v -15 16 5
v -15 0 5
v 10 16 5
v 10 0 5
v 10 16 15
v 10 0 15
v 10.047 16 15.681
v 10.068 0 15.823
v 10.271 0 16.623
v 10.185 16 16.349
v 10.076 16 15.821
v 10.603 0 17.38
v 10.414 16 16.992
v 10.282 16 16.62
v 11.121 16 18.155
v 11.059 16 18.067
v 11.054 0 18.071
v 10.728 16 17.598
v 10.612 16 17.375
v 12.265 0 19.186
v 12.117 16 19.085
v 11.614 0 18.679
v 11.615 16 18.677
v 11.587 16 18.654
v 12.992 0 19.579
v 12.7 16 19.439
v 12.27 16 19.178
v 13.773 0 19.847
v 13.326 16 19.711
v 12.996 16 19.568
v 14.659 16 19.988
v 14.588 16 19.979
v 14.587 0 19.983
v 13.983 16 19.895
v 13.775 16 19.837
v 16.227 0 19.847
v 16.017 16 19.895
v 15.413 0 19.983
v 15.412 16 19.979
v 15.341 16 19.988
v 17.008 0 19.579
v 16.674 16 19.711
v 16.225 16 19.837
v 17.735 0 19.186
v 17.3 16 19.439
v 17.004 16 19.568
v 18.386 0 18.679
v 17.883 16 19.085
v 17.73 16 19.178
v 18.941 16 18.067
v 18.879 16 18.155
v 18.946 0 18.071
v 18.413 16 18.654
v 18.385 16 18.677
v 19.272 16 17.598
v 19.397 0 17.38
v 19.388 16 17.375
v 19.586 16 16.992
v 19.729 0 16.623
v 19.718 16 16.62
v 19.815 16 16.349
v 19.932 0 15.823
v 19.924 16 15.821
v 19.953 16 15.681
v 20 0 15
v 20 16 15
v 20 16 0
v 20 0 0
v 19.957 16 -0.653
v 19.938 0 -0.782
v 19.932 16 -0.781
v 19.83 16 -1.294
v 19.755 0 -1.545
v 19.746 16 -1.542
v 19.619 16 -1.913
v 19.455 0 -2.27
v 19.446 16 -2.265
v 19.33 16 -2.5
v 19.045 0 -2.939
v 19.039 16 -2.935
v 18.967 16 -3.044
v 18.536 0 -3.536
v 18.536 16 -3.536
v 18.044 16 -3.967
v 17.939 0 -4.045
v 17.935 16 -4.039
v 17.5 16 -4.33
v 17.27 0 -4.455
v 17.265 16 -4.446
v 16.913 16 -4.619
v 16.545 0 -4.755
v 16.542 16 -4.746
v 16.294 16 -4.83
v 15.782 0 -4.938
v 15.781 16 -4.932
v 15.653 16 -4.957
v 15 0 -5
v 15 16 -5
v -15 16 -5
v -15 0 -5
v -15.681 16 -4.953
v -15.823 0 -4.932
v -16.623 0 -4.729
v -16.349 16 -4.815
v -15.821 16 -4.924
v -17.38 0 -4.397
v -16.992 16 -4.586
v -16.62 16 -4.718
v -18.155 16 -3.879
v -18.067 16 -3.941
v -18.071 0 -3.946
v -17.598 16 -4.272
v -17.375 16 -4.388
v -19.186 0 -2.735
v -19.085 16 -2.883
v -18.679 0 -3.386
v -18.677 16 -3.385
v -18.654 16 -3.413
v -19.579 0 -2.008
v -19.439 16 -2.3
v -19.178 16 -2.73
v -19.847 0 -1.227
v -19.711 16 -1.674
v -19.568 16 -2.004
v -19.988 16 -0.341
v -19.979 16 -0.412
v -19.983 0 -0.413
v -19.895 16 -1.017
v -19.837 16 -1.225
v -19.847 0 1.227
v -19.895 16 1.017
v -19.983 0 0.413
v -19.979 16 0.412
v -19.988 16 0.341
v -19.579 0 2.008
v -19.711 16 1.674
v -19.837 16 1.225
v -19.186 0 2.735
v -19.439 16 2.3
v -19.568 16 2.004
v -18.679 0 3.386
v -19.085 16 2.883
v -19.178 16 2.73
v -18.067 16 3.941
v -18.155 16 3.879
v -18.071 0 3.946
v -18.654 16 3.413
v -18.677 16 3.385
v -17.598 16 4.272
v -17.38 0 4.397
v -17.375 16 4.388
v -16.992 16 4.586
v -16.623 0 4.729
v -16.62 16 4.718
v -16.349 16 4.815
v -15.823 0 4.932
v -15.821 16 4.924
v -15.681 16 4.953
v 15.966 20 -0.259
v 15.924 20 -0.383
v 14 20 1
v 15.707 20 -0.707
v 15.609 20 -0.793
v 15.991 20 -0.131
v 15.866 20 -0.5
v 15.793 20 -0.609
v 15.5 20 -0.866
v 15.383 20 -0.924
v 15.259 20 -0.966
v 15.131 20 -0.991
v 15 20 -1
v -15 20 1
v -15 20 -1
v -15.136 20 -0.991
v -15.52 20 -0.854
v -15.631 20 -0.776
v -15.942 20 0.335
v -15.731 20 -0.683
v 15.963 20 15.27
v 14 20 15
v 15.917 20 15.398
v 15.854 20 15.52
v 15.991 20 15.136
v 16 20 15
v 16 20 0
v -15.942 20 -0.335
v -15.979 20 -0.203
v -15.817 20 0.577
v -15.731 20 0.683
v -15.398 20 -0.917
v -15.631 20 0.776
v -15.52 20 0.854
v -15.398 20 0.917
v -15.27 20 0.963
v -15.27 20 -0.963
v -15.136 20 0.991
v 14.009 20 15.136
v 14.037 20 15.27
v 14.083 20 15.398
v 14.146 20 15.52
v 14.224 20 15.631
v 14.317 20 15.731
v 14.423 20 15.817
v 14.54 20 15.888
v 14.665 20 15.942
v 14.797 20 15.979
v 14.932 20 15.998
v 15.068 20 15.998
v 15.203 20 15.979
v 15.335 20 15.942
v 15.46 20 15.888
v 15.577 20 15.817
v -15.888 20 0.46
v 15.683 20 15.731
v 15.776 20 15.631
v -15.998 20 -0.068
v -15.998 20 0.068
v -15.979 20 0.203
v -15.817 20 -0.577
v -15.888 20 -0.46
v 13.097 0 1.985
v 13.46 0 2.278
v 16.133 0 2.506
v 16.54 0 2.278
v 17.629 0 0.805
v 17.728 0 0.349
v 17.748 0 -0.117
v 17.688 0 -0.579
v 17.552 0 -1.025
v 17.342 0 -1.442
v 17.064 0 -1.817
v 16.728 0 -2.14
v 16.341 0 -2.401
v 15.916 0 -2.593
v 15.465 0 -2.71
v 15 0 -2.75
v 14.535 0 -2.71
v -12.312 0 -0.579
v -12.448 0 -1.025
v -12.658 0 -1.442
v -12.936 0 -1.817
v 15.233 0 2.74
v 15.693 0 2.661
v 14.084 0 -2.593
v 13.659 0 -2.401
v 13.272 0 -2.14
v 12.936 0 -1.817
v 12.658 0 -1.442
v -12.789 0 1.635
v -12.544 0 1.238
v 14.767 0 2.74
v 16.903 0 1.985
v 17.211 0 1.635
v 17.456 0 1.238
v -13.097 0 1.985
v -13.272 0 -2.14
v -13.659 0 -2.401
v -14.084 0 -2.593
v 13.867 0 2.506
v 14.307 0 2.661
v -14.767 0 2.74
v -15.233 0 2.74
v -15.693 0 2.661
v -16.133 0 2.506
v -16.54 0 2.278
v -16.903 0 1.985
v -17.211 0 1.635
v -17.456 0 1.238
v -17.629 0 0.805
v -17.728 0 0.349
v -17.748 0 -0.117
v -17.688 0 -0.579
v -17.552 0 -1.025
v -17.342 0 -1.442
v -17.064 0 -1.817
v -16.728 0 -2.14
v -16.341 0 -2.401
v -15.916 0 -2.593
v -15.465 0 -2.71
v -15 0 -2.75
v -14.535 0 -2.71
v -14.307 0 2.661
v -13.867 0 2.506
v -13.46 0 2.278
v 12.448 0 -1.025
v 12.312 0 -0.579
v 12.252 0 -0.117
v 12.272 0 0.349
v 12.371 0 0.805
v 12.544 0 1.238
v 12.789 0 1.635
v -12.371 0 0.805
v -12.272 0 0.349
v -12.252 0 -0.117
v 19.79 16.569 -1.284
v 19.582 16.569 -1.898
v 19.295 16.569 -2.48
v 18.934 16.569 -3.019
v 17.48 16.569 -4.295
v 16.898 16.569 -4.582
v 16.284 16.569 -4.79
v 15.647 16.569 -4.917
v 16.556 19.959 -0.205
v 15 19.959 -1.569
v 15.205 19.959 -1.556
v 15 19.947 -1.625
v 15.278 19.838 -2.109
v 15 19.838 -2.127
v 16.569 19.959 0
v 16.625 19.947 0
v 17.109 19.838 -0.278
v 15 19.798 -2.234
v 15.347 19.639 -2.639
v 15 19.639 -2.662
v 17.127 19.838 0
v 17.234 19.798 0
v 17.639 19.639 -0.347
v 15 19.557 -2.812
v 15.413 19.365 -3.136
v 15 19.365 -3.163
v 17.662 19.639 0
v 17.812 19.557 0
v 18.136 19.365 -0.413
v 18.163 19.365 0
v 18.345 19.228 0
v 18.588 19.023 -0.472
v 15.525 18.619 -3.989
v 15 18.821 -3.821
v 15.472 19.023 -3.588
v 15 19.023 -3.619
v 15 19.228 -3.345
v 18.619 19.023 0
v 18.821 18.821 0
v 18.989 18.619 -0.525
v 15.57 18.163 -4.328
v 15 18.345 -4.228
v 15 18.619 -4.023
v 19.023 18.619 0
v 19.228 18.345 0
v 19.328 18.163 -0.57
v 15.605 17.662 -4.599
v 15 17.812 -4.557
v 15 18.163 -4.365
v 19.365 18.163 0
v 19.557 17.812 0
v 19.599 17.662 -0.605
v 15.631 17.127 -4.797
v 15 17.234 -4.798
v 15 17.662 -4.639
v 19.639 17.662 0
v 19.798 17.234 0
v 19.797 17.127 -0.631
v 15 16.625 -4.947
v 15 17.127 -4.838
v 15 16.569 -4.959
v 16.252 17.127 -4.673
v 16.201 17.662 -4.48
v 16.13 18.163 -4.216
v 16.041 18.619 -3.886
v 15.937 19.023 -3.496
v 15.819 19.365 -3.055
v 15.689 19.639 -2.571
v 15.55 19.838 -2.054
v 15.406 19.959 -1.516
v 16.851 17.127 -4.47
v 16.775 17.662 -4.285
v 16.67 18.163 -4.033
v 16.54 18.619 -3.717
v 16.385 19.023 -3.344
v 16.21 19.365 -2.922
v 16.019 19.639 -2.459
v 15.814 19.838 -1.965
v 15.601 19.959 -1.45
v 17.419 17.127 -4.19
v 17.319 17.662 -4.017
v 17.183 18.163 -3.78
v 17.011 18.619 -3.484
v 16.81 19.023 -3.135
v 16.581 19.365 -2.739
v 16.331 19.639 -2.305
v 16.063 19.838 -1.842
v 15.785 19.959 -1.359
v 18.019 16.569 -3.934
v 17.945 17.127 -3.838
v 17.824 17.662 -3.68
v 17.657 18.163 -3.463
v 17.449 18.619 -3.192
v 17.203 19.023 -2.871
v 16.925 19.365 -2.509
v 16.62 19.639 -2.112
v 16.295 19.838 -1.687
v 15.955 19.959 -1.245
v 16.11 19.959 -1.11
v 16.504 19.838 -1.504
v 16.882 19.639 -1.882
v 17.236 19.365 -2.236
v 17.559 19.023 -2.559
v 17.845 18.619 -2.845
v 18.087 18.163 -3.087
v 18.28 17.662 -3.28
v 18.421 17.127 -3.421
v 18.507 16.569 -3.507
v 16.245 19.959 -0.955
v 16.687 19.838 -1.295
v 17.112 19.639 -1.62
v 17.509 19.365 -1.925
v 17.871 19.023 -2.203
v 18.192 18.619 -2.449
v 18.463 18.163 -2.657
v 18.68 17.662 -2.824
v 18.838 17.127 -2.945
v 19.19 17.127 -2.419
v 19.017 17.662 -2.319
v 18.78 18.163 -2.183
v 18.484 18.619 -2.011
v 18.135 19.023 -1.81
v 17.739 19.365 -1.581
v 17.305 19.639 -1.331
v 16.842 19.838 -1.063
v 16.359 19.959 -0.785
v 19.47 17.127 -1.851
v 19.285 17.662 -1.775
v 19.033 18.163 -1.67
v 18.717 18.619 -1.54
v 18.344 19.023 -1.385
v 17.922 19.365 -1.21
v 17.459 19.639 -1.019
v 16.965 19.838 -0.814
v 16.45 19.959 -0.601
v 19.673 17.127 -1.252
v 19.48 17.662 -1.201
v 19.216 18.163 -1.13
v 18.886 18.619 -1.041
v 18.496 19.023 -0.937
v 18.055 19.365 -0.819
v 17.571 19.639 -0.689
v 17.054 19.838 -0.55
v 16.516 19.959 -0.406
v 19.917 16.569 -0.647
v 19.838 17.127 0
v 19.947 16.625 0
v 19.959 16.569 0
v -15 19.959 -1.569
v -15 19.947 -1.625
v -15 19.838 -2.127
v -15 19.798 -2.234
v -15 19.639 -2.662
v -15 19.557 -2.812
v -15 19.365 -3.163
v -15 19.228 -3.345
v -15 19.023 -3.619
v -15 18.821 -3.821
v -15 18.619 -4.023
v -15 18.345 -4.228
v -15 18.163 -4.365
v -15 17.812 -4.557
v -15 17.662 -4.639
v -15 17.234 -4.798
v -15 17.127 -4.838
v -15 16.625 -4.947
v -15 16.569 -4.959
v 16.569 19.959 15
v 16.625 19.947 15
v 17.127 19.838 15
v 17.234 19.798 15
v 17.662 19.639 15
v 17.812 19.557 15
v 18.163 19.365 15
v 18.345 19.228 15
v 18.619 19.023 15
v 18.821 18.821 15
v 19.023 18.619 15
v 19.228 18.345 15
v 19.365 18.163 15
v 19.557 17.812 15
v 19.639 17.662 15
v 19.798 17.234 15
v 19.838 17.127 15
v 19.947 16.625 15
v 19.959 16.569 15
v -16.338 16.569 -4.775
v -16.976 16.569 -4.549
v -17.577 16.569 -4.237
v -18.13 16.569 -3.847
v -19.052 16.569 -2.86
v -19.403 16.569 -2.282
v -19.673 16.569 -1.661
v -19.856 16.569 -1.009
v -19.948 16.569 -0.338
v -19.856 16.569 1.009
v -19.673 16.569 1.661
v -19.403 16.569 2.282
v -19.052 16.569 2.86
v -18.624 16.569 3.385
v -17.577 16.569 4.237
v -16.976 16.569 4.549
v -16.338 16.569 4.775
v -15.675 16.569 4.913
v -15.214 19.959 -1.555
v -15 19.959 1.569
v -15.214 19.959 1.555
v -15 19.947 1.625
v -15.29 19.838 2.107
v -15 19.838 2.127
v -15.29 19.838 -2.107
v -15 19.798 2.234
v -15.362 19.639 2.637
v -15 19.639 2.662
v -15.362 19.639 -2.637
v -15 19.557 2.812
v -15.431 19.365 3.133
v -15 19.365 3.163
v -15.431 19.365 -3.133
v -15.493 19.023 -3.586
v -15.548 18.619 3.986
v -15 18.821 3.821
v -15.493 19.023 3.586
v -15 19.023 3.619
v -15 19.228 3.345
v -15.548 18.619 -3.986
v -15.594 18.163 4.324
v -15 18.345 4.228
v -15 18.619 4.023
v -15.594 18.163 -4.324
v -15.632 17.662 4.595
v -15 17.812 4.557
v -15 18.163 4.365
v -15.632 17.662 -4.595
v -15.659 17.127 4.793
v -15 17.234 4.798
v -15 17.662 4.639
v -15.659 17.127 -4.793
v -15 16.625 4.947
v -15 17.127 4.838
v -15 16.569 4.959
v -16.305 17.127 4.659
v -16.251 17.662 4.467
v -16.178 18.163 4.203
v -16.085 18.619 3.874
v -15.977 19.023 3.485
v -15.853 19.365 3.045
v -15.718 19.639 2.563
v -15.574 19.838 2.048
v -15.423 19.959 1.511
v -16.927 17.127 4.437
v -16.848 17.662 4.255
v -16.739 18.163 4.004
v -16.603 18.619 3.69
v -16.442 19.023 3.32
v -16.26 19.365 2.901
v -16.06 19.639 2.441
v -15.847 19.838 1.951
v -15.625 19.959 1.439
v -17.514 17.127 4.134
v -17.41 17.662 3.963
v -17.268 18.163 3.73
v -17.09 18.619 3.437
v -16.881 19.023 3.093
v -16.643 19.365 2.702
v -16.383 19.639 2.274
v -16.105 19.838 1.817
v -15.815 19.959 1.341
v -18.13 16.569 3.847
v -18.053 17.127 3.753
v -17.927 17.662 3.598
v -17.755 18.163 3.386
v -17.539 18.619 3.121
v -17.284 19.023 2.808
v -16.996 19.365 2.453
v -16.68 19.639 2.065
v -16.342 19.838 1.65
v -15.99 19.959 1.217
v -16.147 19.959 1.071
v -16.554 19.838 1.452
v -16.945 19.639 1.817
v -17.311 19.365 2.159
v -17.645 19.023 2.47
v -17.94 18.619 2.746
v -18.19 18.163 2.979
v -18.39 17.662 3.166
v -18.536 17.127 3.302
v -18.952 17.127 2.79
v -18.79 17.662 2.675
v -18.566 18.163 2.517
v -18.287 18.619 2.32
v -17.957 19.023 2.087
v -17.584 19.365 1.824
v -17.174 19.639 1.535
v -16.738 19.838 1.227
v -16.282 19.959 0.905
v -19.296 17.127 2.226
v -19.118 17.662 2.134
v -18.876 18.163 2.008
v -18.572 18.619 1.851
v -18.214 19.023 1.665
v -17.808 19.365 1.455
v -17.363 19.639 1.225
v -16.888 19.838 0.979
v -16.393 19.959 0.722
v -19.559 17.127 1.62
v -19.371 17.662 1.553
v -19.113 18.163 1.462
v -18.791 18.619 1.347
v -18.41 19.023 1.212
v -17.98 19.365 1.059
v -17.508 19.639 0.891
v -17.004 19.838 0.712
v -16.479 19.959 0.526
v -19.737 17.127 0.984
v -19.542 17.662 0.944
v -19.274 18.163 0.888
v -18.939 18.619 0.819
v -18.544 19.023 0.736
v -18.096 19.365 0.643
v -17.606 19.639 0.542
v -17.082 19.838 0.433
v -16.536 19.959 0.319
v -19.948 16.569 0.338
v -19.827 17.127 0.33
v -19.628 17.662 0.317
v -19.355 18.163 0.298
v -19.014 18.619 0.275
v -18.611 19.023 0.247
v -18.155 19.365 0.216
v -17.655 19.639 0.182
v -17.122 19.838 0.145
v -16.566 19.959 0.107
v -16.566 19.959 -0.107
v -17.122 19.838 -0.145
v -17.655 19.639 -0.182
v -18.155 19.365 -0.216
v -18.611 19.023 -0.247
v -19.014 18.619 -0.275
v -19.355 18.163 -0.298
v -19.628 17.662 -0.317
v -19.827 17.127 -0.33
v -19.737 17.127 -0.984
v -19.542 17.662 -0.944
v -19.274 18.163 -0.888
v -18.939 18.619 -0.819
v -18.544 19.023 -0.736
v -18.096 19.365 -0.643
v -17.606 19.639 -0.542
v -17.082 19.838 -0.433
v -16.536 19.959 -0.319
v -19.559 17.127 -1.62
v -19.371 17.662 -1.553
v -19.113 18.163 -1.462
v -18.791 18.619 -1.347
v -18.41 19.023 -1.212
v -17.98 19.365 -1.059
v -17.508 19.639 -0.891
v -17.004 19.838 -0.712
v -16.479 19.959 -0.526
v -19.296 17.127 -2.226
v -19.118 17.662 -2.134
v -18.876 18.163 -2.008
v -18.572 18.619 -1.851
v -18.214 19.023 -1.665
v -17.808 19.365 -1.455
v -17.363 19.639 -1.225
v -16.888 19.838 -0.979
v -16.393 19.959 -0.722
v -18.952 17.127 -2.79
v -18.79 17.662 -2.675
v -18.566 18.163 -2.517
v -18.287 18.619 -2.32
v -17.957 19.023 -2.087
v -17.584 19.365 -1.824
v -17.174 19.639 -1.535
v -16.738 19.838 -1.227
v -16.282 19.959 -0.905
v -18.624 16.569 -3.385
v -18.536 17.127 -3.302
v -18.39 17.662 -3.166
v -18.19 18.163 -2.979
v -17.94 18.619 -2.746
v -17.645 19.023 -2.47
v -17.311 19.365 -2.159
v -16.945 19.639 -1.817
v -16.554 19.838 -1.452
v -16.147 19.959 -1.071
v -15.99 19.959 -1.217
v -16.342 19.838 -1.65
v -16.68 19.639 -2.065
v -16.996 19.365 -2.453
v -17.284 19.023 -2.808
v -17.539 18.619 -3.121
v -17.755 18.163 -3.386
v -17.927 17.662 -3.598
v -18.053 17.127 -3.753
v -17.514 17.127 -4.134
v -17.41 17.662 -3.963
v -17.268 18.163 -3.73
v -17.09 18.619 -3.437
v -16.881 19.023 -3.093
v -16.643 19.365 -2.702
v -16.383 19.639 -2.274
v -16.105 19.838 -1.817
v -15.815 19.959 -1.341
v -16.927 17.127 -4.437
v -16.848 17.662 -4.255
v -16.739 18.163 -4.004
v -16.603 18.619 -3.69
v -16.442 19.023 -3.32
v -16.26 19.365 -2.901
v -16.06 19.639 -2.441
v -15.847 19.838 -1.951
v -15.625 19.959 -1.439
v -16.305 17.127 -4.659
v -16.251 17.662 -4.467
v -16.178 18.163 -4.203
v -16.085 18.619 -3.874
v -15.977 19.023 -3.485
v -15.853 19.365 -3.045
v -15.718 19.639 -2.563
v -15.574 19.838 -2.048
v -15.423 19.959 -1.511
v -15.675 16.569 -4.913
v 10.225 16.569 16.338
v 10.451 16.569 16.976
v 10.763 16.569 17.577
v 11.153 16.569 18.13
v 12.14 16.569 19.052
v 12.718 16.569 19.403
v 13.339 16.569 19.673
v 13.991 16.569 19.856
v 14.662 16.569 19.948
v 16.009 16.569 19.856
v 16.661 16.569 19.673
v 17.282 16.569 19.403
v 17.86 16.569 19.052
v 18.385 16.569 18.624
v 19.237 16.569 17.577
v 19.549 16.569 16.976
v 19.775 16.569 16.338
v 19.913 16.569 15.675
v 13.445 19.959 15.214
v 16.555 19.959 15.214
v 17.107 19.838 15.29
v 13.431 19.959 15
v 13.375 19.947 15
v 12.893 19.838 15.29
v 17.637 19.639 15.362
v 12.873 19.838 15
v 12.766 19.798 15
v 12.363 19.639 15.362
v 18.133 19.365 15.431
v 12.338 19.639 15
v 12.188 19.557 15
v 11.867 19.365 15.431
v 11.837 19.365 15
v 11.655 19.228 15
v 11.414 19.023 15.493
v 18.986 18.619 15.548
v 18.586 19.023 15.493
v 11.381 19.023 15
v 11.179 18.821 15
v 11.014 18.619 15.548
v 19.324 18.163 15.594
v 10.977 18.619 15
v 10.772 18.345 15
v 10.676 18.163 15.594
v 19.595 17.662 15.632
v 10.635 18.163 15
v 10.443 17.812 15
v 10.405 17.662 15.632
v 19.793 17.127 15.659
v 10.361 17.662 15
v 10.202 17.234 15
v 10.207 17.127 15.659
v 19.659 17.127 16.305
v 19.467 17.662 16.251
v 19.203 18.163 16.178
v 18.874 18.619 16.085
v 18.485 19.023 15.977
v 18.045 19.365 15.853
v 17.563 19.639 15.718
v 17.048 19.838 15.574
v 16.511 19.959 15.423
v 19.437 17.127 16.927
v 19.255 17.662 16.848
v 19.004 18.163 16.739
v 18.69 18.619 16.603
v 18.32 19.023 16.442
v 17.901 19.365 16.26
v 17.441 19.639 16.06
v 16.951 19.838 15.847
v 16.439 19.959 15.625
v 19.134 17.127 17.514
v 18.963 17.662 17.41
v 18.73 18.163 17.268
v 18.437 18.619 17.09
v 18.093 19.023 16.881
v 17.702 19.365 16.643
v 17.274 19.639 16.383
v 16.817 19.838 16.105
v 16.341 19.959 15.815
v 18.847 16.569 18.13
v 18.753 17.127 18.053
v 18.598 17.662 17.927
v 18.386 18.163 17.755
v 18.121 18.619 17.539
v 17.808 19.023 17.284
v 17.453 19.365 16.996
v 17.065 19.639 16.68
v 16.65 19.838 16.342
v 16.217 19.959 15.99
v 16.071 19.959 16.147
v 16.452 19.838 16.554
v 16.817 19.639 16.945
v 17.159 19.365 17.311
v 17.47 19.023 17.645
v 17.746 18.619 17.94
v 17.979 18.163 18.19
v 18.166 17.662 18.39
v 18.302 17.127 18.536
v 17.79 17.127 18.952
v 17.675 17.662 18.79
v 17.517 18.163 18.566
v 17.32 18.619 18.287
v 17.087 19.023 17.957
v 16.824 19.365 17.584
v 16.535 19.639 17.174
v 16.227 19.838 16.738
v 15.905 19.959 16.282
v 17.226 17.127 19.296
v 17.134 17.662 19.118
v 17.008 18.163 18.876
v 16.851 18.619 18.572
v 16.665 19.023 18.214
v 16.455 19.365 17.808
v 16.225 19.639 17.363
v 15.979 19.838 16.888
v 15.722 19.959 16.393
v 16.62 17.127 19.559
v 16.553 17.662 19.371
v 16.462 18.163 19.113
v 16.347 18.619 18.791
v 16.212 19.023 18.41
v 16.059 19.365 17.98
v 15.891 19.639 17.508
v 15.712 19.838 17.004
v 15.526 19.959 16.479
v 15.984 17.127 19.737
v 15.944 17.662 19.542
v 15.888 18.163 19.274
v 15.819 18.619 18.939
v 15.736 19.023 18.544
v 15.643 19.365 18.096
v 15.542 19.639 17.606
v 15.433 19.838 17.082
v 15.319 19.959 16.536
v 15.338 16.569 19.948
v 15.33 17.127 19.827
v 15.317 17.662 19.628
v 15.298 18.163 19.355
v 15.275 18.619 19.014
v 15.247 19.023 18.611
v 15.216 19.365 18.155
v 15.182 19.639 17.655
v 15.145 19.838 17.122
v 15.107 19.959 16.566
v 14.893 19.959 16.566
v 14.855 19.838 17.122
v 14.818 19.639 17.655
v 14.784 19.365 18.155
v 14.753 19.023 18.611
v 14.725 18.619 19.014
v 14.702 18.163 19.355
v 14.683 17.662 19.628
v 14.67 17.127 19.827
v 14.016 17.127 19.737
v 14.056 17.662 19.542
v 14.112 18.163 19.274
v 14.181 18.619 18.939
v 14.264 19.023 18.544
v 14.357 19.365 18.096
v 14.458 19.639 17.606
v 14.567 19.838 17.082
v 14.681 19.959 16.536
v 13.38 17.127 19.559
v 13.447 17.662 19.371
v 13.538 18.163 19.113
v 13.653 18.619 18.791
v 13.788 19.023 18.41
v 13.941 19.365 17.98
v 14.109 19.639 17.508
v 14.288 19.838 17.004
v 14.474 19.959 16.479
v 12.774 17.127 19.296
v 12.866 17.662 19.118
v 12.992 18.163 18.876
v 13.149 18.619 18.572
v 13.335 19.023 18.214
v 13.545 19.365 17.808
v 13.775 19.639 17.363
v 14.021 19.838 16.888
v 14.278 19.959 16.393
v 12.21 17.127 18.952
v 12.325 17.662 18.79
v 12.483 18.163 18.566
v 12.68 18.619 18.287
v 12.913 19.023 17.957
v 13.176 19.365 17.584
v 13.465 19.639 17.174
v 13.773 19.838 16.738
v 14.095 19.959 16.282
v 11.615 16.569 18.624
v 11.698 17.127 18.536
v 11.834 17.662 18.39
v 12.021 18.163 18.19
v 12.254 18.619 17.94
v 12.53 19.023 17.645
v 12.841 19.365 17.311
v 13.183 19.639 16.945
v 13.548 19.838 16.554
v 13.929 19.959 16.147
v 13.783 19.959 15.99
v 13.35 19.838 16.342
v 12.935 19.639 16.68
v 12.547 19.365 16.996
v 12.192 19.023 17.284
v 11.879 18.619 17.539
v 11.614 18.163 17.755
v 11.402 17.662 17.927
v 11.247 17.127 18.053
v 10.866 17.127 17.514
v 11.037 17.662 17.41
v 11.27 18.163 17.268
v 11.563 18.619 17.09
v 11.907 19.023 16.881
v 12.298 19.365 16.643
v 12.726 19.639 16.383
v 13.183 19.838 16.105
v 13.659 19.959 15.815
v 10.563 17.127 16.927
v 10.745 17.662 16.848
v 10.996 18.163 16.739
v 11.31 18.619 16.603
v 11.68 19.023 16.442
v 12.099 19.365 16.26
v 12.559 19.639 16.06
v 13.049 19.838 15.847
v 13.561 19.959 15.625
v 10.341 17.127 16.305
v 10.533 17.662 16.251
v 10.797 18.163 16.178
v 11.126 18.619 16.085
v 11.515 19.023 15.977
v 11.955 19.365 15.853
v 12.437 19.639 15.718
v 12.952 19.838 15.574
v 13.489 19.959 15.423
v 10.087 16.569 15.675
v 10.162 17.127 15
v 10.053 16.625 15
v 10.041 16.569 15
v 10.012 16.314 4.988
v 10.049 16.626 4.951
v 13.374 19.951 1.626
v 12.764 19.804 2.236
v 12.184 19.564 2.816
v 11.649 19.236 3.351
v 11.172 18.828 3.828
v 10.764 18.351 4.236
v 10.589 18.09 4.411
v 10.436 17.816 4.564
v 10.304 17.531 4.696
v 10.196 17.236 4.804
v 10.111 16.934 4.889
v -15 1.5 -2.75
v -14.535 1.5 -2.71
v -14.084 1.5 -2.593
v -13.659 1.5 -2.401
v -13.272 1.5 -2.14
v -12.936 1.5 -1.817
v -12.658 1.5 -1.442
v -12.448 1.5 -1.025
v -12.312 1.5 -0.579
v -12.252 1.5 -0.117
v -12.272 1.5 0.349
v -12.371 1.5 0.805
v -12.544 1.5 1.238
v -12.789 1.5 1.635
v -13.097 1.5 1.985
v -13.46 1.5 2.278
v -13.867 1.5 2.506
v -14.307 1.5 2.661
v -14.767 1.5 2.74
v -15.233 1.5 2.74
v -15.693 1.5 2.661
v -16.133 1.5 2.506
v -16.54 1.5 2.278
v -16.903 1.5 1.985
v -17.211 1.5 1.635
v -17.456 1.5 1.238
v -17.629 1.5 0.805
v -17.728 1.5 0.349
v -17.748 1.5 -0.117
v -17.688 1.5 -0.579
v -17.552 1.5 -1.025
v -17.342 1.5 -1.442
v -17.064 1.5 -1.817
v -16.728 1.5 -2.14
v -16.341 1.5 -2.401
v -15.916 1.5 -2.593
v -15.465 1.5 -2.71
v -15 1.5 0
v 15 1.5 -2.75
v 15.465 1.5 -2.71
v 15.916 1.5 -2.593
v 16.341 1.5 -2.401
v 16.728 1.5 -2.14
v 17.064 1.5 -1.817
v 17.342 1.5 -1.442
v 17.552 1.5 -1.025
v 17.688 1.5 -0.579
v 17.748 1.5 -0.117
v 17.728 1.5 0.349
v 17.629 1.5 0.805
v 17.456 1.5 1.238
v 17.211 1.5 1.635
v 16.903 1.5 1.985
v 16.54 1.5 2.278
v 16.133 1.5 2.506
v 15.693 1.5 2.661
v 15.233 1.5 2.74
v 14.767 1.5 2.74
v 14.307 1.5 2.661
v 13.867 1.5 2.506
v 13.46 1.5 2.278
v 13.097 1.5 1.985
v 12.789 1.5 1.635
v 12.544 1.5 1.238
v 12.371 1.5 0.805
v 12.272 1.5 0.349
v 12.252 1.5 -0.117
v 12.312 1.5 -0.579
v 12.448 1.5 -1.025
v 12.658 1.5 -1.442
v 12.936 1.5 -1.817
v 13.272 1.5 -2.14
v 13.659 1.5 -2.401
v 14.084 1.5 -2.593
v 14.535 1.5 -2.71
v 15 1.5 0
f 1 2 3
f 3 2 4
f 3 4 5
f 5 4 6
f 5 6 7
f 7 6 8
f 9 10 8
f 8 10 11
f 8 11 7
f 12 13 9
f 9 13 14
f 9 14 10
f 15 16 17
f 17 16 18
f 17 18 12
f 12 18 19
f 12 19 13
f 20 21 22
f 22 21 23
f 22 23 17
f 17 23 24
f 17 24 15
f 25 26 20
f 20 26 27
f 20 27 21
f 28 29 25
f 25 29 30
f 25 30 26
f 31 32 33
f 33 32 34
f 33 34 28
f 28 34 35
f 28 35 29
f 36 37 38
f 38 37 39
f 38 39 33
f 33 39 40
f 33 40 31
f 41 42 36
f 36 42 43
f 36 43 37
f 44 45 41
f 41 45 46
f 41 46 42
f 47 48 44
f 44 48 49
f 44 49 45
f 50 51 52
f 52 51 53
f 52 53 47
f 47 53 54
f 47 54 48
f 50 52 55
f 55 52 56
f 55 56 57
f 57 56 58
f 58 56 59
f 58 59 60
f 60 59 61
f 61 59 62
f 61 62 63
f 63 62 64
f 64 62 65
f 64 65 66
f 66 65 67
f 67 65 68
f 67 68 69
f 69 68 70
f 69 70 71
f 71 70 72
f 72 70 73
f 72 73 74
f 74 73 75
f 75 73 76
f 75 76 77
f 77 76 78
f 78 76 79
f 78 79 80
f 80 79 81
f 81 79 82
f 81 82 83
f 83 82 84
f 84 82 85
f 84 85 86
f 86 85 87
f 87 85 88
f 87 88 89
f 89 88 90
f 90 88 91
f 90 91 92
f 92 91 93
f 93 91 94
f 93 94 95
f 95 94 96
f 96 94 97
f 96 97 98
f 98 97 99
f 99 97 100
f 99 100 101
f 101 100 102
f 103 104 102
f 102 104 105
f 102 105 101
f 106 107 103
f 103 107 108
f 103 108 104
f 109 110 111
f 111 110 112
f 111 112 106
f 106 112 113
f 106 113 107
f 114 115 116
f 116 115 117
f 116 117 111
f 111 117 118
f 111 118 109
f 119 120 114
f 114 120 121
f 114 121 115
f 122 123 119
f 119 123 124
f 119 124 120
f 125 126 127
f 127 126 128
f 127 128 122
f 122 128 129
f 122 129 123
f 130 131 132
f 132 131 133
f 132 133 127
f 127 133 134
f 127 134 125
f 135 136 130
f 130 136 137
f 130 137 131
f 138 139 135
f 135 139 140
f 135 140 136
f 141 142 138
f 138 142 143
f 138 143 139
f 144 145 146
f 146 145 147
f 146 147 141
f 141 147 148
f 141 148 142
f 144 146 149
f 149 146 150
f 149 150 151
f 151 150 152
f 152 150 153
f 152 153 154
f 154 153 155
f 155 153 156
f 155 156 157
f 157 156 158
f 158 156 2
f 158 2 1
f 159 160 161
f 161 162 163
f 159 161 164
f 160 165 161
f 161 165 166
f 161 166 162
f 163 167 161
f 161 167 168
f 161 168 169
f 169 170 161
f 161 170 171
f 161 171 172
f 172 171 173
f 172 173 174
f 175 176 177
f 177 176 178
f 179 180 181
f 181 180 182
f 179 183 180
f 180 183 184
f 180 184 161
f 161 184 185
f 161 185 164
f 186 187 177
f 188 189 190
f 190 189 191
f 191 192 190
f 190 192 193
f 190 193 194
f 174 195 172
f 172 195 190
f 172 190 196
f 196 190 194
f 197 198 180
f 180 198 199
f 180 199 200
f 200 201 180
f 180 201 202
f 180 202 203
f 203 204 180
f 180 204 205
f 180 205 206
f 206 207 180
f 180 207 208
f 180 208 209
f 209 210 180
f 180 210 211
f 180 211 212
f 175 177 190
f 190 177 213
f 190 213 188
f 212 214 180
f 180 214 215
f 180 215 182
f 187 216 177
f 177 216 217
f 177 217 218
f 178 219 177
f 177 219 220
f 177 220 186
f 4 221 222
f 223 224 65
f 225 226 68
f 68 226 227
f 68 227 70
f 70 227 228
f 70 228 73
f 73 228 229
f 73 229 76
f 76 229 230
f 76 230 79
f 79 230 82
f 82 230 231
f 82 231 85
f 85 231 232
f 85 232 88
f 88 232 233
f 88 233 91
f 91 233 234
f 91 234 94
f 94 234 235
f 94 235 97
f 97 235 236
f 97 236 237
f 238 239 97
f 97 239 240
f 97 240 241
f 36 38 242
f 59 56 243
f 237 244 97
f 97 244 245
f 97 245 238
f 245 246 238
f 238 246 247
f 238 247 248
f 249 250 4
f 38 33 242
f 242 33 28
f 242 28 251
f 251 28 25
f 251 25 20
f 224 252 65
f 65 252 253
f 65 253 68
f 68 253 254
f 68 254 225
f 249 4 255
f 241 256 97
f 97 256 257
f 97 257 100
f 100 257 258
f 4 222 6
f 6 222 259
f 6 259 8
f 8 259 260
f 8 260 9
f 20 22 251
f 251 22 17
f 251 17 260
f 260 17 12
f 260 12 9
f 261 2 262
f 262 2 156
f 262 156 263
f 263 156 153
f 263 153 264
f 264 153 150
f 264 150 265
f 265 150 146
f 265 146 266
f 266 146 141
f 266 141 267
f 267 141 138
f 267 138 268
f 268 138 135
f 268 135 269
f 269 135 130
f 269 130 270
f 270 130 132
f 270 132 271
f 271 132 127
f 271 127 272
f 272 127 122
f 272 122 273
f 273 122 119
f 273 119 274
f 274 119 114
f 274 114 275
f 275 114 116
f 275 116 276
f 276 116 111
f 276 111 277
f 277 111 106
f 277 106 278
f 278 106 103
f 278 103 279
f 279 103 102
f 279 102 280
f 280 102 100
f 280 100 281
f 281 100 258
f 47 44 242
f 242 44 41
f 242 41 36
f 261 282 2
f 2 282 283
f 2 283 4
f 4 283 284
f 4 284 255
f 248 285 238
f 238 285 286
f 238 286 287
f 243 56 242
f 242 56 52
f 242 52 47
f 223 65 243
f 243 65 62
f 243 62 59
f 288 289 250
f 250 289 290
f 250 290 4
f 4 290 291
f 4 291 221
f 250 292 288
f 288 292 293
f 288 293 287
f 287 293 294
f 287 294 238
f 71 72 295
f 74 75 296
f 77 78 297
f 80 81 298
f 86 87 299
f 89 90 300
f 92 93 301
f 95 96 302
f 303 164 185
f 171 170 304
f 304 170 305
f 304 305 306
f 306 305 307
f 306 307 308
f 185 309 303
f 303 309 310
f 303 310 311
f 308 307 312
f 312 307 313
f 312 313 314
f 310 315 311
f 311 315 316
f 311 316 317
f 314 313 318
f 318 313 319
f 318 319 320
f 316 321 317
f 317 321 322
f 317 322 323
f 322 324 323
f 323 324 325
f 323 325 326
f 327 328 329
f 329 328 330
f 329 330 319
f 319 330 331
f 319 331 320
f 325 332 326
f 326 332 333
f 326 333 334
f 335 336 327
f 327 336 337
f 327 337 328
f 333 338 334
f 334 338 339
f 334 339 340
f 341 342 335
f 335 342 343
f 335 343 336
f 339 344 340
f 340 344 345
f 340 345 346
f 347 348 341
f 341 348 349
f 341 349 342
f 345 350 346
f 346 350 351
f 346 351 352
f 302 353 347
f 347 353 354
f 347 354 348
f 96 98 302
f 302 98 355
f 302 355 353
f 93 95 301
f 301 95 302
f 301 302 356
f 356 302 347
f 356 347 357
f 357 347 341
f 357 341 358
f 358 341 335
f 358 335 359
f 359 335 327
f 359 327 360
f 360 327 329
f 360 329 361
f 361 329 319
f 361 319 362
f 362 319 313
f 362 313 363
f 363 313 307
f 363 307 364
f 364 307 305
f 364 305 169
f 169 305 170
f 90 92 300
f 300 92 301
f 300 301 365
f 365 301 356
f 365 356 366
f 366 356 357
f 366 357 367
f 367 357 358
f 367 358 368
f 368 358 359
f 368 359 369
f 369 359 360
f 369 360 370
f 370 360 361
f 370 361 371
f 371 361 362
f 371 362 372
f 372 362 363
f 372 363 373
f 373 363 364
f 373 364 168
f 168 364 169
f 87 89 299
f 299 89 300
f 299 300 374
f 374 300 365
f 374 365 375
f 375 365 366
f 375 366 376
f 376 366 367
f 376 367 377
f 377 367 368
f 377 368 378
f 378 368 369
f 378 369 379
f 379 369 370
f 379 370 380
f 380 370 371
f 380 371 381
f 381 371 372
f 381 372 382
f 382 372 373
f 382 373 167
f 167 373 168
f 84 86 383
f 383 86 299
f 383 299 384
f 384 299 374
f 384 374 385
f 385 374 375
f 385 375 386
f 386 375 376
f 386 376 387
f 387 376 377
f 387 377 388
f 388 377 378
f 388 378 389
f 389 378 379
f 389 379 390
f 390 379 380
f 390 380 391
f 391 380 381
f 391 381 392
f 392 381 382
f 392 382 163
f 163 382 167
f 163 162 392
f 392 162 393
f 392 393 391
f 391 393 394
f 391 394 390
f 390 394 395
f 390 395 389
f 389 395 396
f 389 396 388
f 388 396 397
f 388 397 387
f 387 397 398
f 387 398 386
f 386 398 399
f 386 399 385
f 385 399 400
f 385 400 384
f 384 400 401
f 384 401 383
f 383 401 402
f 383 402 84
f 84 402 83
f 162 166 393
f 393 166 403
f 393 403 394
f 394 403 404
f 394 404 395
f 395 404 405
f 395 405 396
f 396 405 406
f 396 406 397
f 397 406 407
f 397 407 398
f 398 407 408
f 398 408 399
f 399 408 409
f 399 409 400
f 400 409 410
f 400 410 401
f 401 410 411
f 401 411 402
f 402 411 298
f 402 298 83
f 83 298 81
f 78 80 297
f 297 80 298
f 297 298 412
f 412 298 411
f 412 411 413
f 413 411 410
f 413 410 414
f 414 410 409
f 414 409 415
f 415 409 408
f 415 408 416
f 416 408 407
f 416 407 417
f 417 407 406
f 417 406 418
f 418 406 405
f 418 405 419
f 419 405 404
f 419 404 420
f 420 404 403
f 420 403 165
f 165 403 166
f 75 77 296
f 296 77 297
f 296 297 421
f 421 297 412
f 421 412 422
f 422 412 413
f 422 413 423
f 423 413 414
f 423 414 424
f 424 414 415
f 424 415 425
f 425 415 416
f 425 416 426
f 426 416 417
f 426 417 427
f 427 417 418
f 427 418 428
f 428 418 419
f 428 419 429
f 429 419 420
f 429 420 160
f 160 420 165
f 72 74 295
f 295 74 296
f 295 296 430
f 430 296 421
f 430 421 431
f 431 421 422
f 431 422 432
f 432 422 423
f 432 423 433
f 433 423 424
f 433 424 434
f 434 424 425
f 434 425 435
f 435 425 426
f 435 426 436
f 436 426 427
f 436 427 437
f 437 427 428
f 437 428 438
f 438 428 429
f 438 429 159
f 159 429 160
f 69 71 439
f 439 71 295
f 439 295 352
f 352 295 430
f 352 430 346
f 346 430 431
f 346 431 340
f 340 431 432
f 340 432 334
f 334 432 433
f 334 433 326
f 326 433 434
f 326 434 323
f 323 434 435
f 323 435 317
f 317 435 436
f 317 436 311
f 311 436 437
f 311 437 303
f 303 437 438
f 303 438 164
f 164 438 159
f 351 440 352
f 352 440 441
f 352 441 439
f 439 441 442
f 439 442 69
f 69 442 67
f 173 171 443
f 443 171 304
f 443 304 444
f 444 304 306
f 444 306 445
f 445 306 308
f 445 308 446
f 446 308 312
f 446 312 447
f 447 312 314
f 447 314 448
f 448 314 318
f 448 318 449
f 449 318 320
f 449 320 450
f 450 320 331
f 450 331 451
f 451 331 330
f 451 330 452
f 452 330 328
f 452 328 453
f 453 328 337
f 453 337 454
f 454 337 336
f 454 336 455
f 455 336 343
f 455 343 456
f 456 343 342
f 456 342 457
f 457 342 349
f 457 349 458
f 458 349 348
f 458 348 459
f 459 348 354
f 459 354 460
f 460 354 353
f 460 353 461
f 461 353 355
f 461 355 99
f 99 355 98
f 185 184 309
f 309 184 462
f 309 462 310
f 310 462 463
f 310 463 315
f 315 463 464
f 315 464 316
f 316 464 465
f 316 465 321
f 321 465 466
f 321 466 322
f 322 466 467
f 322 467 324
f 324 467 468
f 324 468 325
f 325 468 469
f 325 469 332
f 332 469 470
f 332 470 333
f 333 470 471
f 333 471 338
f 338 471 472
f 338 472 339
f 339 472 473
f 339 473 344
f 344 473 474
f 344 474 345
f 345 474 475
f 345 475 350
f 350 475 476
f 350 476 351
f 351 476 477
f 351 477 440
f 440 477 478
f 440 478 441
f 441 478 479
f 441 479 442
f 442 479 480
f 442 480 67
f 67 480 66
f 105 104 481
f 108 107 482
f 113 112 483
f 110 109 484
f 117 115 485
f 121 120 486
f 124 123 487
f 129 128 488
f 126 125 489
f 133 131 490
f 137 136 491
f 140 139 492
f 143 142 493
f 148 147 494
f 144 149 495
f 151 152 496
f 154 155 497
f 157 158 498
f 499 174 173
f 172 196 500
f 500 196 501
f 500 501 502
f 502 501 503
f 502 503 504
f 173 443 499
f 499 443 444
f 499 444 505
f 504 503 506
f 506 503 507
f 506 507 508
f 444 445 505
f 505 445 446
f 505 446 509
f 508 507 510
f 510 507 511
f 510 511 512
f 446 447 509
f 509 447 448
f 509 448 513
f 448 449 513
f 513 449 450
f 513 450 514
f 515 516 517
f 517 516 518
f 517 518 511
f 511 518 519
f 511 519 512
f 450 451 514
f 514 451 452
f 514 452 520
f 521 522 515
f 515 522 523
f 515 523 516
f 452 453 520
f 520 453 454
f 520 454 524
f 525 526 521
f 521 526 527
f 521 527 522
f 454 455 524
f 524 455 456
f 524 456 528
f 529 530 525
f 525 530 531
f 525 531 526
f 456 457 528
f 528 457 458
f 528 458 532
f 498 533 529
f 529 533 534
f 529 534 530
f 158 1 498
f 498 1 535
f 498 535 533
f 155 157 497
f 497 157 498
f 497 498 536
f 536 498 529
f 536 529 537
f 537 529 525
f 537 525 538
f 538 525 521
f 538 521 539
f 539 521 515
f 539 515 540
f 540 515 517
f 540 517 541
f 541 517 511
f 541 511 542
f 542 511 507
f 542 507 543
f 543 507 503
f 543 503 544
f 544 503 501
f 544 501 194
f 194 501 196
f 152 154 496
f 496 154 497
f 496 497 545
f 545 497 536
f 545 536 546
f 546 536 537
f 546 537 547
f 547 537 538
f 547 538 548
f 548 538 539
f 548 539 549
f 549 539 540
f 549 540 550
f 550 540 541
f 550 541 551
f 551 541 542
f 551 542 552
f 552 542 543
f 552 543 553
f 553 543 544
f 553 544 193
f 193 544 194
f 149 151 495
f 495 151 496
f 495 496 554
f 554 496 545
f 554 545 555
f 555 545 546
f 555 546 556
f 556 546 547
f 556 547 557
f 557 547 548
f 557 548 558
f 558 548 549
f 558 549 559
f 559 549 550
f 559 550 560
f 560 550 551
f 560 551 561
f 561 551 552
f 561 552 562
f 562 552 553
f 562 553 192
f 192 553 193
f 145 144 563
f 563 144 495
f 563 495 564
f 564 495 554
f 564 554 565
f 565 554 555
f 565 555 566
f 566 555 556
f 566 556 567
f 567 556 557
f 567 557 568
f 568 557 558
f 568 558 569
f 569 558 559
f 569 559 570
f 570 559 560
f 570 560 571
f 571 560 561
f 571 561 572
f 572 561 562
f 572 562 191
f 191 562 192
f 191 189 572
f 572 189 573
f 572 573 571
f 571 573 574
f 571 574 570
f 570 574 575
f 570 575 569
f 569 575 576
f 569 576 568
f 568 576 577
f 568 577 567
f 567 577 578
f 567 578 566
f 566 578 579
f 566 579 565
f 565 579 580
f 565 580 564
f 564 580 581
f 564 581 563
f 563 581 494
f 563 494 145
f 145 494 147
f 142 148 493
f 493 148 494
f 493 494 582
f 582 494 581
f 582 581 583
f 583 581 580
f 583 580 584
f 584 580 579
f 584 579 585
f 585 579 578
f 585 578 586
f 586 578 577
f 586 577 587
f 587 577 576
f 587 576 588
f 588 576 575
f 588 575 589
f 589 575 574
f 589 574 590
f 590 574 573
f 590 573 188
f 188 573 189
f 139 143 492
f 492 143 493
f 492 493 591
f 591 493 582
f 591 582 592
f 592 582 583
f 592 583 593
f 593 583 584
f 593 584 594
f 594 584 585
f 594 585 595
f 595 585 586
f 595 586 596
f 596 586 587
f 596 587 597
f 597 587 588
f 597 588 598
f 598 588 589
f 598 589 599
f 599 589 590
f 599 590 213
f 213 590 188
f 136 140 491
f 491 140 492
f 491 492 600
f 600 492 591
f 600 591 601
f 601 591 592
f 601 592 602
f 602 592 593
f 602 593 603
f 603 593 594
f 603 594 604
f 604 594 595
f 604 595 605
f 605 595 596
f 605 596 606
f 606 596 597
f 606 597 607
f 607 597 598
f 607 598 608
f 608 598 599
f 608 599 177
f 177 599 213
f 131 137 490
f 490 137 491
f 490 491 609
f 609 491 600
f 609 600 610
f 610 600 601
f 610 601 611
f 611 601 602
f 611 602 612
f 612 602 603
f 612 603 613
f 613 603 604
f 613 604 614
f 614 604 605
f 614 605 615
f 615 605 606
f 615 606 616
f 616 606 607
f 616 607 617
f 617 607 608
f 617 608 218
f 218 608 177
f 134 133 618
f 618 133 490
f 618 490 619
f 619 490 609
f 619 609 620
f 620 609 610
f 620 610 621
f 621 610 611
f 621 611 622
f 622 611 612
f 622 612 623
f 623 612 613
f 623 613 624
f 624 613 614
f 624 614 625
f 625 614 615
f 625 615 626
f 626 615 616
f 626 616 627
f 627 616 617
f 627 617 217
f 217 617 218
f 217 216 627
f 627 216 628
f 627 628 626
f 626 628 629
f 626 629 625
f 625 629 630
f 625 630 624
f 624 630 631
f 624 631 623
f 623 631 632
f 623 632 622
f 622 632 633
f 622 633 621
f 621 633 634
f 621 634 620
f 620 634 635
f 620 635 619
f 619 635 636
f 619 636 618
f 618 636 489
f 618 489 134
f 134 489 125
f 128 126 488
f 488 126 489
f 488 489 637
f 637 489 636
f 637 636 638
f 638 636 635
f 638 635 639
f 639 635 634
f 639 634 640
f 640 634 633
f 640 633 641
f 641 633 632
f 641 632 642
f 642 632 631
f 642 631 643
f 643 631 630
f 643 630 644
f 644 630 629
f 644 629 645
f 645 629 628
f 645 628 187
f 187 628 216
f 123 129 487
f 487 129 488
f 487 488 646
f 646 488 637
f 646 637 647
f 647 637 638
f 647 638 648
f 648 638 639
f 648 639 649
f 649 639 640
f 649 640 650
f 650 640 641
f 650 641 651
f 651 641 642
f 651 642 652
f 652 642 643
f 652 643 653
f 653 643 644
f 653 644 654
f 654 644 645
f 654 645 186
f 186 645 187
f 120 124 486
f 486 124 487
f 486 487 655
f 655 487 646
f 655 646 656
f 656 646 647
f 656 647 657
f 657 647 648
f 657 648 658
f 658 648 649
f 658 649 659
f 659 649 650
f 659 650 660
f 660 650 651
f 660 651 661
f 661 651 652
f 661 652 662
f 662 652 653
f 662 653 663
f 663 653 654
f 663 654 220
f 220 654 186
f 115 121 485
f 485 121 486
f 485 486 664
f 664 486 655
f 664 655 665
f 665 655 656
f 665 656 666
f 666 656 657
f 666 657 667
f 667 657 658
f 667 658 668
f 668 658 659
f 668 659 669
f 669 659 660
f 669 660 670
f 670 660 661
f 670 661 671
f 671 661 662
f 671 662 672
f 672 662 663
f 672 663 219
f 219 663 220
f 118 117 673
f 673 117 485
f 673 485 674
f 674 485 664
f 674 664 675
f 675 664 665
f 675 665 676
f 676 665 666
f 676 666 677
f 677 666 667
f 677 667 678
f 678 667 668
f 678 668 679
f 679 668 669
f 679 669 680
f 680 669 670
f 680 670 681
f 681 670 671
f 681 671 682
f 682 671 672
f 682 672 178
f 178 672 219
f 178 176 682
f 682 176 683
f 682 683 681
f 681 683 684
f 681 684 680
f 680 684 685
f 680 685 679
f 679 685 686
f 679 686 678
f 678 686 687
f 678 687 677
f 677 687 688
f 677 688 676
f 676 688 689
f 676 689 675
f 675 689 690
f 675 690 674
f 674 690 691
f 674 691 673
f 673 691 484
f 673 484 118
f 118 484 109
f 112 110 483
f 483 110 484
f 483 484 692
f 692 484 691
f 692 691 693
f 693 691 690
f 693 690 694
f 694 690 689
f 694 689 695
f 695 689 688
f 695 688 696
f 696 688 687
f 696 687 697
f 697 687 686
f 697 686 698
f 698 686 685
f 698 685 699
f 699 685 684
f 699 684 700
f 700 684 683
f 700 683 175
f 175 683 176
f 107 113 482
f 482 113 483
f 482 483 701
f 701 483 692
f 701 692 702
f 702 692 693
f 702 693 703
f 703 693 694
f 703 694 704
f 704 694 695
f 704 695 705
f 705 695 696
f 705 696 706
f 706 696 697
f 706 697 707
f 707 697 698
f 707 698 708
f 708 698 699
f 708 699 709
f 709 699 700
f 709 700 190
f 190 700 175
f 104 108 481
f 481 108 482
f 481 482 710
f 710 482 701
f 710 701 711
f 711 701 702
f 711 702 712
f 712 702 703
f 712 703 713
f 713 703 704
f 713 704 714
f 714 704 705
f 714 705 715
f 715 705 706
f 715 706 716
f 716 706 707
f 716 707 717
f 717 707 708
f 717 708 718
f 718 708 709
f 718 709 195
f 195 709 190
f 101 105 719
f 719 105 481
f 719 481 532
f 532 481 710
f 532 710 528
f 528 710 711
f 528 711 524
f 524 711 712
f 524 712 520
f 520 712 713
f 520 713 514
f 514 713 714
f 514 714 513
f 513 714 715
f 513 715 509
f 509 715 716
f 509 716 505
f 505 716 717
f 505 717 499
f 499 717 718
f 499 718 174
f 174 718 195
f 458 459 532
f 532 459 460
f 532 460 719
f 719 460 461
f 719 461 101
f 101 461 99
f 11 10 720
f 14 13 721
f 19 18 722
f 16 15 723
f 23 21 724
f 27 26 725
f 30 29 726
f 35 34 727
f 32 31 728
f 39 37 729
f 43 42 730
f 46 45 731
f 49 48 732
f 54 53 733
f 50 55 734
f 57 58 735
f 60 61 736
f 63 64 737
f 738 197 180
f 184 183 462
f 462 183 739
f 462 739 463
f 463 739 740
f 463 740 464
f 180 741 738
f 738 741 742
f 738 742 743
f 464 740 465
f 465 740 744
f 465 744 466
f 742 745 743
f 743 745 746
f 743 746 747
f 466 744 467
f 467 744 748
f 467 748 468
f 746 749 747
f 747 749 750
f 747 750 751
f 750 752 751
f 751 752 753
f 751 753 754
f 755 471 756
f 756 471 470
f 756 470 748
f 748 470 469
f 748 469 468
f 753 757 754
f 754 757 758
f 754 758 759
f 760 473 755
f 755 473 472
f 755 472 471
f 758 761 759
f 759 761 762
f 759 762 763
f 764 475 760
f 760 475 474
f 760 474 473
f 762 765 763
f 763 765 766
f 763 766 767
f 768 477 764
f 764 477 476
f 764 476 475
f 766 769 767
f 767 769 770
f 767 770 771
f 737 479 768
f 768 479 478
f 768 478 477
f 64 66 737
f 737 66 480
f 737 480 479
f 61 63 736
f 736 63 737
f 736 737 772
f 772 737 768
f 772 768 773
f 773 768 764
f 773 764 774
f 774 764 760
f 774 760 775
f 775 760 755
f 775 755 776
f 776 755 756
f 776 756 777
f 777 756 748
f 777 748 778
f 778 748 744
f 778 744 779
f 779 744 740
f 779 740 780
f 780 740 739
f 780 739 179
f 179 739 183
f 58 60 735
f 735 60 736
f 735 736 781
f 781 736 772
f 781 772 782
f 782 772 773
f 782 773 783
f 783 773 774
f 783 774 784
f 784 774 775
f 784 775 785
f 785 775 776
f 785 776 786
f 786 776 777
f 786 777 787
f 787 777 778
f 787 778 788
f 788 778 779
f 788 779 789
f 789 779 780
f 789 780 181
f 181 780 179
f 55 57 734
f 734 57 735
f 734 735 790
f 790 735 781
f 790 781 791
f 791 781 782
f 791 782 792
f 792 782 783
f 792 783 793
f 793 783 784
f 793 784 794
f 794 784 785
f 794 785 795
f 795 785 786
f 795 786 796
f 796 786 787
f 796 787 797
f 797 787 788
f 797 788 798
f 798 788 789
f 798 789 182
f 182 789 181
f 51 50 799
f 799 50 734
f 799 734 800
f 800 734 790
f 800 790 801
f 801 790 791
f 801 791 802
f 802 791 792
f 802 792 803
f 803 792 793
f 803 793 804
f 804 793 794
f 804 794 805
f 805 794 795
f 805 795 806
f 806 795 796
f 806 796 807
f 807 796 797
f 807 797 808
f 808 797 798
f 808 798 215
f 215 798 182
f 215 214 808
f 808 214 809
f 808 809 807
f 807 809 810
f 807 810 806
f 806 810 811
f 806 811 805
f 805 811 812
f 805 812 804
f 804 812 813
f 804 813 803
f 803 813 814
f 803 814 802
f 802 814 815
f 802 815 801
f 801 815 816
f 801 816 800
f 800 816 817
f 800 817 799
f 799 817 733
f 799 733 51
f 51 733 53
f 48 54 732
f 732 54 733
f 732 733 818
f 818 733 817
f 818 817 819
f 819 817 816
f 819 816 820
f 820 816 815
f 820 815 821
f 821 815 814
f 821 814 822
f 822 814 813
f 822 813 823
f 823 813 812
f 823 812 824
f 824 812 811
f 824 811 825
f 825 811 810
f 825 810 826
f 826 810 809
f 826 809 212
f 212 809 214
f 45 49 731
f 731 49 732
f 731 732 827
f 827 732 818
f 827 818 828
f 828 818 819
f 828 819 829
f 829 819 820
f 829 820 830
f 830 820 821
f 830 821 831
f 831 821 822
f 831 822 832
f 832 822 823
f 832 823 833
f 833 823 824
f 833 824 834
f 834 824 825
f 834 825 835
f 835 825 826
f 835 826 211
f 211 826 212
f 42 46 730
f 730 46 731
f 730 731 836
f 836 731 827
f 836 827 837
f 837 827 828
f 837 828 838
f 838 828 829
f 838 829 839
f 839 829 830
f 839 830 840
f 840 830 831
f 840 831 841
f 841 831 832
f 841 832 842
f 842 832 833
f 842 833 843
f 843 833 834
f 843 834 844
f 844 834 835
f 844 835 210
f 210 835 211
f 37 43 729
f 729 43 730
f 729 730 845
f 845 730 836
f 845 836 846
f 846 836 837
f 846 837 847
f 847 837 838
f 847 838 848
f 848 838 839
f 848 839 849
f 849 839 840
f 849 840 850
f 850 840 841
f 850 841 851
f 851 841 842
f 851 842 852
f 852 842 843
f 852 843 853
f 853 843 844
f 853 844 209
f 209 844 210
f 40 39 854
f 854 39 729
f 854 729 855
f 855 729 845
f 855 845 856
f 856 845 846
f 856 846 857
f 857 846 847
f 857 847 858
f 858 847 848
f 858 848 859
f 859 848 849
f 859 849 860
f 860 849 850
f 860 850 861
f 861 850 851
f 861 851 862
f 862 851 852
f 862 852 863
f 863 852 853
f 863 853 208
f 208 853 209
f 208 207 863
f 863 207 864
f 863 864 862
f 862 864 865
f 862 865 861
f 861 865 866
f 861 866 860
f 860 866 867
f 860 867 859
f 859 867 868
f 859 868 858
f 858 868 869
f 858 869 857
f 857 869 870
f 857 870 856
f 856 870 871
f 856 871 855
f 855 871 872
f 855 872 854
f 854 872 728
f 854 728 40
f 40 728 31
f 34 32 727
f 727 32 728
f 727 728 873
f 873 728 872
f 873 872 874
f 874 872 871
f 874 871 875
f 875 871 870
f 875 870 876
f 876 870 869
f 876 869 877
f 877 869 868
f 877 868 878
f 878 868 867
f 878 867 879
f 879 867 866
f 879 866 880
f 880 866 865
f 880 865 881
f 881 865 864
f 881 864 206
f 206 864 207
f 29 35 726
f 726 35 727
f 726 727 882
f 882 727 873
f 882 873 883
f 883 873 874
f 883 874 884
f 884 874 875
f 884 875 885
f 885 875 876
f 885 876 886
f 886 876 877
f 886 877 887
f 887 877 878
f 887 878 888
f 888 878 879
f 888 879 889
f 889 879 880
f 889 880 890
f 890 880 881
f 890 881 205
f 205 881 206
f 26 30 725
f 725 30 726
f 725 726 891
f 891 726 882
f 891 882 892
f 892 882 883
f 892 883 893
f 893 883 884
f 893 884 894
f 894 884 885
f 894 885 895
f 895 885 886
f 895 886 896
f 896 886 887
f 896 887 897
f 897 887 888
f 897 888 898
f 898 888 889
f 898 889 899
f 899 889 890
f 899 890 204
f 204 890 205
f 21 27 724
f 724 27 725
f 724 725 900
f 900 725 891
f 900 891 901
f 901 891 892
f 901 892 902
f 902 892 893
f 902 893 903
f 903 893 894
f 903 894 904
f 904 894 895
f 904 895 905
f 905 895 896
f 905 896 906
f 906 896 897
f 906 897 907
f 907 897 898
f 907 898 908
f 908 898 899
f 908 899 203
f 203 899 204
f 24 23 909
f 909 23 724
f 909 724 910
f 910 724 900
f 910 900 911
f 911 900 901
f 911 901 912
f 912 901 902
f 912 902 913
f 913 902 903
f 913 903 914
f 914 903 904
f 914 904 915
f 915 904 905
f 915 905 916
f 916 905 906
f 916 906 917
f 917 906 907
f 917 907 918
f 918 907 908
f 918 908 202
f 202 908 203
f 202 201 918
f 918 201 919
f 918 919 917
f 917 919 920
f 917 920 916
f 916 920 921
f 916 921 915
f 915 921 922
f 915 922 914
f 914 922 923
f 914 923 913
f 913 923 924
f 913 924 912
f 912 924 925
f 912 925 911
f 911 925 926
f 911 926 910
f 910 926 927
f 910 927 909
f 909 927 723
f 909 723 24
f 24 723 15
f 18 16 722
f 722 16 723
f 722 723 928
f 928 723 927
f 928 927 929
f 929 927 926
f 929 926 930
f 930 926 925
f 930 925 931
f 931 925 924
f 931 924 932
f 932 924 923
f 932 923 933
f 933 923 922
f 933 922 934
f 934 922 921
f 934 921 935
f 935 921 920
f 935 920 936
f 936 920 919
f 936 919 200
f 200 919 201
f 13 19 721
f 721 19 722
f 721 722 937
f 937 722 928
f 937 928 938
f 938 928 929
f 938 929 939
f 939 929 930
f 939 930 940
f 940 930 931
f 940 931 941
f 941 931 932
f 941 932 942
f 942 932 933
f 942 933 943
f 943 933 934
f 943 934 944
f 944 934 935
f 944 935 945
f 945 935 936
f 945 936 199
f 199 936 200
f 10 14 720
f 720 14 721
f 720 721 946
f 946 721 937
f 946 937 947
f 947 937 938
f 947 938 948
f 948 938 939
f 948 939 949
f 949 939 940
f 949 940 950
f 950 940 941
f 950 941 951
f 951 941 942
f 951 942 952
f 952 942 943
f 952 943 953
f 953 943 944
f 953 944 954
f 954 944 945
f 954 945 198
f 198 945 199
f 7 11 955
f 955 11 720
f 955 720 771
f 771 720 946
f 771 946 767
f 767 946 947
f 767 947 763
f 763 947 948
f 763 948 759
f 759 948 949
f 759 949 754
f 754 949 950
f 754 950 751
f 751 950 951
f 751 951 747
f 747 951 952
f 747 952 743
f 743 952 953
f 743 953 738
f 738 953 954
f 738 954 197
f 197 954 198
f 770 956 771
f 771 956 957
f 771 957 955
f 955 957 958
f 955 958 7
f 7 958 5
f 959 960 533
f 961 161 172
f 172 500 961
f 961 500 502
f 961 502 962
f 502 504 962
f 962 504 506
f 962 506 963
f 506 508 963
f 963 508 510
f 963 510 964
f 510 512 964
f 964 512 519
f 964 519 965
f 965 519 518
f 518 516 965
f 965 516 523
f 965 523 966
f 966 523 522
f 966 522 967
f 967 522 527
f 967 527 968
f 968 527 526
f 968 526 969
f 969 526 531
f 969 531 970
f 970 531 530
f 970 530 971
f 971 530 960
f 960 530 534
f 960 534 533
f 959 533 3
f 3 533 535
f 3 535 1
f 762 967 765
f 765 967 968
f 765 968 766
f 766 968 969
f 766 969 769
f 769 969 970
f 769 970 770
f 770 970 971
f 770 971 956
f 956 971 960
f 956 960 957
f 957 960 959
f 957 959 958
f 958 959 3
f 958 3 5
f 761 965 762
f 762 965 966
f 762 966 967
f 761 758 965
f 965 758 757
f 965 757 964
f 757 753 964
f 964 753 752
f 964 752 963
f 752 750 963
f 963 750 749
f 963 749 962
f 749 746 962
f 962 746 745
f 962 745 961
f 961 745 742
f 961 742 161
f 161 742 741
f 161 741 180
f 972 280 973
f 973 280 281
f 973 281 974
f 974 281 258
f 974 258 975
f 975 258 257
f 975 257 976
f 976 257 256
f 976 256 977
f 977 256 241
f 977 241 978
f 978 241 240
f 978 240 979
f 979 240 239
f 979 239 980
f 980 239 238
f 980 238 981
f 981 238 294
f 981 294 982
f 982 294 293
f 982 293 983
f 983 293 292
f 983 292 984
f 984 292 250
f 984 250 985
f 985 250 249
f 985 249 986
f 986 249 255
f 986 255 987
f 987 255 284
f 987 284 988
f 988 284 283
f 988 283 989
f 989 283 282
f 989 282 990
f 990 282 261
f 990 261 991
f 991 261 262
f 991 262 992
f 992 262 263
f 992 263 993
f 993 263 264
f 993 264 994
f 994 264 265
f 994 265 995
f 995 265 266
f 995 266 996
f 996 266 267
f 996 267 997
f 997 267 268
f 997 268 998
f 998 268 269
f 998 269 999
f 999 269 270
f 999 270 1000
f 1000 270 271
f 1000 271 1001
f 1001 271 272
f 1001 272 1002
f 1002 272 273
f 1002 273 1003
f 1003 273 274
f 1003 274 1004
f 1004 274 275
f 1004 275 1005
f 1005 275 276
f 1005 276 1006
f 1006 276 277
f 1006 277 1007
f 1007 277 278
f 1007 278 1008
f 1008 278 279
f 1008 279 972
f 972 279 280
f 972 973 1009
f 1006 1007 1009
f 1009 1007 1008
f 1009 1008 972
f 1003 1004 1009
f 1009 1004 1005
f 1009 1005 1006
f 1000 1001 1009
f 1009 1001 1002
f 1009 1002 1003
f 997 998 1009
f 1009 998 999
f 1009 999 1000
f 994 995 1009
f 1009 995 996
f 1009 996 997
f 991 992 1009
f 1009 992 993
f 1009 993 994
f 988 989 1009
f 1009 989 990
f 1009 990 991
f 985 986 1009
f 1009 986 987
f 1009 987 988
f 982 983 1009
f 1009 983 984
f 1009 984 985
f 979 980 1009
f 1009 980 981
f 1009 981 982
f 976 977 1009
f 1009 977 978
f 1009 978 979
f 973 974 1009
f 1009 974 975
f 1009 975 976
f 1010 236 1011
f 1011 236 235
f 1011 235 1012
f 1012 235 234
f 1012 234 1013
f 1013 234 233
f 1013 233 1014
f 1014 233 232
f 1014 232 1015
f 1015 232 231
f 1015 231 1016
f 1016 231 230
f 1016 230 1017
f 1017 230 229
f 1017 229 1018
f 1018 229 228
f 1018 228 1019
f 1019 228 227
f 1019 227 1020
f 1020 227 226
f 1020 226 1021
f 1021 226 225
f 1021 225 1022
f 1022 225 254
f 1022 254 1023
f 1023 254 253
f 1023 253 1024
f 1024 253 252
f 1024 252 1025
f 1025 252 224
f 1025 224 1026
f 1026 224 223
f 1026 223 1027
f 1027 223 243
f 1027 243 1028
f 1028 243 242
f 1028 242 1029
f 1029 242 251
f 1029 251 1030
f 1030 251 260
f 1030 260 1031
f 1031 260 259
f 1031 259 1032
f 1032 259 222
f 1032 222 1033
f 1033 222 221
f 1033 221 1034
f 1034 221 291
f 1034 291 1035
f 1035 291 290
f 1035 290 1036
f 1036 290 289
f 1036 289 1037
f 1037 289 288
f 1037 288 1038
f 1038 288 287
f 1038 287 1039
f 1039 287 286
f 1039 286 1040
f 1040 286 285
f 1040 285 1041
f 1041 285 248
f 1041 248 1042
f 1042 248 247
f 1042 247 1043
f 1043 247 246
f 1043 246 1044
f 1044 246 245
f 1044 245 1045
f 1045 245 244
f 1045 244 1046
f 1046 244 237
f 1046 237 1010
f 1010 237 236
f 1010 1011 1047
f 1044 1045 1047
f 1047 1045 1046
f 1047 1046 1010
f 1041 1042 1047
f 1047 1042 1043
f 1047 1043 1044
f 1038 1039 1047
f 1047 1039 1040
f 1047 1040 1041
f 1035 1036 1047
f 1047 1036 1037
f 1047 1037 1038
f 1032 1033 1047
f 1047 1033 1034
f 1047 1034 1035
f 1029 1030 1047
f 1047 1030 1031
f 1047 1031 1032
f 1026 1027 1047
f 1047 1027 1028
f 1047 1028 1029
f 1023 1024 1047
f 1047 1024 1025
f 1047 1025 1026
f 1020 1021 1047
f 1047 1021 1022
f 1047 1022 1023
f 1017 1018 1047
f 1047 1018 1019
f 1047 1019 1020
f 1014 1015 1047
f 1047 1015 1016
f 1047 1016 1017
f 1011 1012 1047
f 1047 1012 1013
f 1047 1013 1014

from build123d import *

# Parameters (mm, degrees)
BOSS_EXTRUDE1_DEPTH = 20
FILLET1_R           = 4
SKETCH2_R           = 2.75
CUT_EXTRUDE1_DEPTH  = 1.5
LPATTERN1_COUNT     = 2
LPATTERN1_PITCH     = 30


with BuildPart() as part:
    # Sketch1 → Boss-Extrude1 (new body)
    with BuildSketch(Plane(origin=(0, 0, 0), x_dir=(1, 0, 0), z_dir=(0, 1, 0))):
        with BuildLine():
            Line((-15, -5), (10, -5))
            Line((10, -5), (10, -15))
            ThreePointArc((10, -15), (15, -20), (20, -15))
            Line((20, -15), (20, 0))
            ThreePointArc((20, 0), (18.535533906, 3.535533906), (15, 5))
            Line((15, 5), (-15, 5))
            ThreePointArc((-15, 5), (-20, 0), (-15, -5))
        make_face()
    extrude(amount=BOSS_EXTRUDE1_DEPTH)

    # Fillet1
    fillet1_edges = [part.edges().sort_by_distance(p)[0] for p in [
        (15, 20, 20),
        (20, 20, 7.5),
        (18.535533906, 20, -3.535533906),
        (0, 20, -5),
        (-20, 20, 0),
        (-2.5, 20, 5),
        (10, 20, 10),
    ]]
    fillet(fillet1_edges, radius=FILLET1_R)

    # Sketch2 → Cut-Extrude1 (cut)
    with BuildSketch(Plane.XZ):
        with Locations(Location((-15, 0, 0), (0, 0, 270))):
            Circle(SKETCH2_R)
    cut_extrude1 = extrude(amount=-CUT_EXTRUDE1_DEPTH, mode=Mode.SUBTRACT)

    # LPattern1: Cut-Extrude1 ×2
    with Locations(*[(i * LPATTERN1_PITCH, 0, 0) for i in range(1, LPATTERN1_COUNT)]):
        add(cut_extrude1, mode=Mode.SUBTRACT)


solid = part.part
